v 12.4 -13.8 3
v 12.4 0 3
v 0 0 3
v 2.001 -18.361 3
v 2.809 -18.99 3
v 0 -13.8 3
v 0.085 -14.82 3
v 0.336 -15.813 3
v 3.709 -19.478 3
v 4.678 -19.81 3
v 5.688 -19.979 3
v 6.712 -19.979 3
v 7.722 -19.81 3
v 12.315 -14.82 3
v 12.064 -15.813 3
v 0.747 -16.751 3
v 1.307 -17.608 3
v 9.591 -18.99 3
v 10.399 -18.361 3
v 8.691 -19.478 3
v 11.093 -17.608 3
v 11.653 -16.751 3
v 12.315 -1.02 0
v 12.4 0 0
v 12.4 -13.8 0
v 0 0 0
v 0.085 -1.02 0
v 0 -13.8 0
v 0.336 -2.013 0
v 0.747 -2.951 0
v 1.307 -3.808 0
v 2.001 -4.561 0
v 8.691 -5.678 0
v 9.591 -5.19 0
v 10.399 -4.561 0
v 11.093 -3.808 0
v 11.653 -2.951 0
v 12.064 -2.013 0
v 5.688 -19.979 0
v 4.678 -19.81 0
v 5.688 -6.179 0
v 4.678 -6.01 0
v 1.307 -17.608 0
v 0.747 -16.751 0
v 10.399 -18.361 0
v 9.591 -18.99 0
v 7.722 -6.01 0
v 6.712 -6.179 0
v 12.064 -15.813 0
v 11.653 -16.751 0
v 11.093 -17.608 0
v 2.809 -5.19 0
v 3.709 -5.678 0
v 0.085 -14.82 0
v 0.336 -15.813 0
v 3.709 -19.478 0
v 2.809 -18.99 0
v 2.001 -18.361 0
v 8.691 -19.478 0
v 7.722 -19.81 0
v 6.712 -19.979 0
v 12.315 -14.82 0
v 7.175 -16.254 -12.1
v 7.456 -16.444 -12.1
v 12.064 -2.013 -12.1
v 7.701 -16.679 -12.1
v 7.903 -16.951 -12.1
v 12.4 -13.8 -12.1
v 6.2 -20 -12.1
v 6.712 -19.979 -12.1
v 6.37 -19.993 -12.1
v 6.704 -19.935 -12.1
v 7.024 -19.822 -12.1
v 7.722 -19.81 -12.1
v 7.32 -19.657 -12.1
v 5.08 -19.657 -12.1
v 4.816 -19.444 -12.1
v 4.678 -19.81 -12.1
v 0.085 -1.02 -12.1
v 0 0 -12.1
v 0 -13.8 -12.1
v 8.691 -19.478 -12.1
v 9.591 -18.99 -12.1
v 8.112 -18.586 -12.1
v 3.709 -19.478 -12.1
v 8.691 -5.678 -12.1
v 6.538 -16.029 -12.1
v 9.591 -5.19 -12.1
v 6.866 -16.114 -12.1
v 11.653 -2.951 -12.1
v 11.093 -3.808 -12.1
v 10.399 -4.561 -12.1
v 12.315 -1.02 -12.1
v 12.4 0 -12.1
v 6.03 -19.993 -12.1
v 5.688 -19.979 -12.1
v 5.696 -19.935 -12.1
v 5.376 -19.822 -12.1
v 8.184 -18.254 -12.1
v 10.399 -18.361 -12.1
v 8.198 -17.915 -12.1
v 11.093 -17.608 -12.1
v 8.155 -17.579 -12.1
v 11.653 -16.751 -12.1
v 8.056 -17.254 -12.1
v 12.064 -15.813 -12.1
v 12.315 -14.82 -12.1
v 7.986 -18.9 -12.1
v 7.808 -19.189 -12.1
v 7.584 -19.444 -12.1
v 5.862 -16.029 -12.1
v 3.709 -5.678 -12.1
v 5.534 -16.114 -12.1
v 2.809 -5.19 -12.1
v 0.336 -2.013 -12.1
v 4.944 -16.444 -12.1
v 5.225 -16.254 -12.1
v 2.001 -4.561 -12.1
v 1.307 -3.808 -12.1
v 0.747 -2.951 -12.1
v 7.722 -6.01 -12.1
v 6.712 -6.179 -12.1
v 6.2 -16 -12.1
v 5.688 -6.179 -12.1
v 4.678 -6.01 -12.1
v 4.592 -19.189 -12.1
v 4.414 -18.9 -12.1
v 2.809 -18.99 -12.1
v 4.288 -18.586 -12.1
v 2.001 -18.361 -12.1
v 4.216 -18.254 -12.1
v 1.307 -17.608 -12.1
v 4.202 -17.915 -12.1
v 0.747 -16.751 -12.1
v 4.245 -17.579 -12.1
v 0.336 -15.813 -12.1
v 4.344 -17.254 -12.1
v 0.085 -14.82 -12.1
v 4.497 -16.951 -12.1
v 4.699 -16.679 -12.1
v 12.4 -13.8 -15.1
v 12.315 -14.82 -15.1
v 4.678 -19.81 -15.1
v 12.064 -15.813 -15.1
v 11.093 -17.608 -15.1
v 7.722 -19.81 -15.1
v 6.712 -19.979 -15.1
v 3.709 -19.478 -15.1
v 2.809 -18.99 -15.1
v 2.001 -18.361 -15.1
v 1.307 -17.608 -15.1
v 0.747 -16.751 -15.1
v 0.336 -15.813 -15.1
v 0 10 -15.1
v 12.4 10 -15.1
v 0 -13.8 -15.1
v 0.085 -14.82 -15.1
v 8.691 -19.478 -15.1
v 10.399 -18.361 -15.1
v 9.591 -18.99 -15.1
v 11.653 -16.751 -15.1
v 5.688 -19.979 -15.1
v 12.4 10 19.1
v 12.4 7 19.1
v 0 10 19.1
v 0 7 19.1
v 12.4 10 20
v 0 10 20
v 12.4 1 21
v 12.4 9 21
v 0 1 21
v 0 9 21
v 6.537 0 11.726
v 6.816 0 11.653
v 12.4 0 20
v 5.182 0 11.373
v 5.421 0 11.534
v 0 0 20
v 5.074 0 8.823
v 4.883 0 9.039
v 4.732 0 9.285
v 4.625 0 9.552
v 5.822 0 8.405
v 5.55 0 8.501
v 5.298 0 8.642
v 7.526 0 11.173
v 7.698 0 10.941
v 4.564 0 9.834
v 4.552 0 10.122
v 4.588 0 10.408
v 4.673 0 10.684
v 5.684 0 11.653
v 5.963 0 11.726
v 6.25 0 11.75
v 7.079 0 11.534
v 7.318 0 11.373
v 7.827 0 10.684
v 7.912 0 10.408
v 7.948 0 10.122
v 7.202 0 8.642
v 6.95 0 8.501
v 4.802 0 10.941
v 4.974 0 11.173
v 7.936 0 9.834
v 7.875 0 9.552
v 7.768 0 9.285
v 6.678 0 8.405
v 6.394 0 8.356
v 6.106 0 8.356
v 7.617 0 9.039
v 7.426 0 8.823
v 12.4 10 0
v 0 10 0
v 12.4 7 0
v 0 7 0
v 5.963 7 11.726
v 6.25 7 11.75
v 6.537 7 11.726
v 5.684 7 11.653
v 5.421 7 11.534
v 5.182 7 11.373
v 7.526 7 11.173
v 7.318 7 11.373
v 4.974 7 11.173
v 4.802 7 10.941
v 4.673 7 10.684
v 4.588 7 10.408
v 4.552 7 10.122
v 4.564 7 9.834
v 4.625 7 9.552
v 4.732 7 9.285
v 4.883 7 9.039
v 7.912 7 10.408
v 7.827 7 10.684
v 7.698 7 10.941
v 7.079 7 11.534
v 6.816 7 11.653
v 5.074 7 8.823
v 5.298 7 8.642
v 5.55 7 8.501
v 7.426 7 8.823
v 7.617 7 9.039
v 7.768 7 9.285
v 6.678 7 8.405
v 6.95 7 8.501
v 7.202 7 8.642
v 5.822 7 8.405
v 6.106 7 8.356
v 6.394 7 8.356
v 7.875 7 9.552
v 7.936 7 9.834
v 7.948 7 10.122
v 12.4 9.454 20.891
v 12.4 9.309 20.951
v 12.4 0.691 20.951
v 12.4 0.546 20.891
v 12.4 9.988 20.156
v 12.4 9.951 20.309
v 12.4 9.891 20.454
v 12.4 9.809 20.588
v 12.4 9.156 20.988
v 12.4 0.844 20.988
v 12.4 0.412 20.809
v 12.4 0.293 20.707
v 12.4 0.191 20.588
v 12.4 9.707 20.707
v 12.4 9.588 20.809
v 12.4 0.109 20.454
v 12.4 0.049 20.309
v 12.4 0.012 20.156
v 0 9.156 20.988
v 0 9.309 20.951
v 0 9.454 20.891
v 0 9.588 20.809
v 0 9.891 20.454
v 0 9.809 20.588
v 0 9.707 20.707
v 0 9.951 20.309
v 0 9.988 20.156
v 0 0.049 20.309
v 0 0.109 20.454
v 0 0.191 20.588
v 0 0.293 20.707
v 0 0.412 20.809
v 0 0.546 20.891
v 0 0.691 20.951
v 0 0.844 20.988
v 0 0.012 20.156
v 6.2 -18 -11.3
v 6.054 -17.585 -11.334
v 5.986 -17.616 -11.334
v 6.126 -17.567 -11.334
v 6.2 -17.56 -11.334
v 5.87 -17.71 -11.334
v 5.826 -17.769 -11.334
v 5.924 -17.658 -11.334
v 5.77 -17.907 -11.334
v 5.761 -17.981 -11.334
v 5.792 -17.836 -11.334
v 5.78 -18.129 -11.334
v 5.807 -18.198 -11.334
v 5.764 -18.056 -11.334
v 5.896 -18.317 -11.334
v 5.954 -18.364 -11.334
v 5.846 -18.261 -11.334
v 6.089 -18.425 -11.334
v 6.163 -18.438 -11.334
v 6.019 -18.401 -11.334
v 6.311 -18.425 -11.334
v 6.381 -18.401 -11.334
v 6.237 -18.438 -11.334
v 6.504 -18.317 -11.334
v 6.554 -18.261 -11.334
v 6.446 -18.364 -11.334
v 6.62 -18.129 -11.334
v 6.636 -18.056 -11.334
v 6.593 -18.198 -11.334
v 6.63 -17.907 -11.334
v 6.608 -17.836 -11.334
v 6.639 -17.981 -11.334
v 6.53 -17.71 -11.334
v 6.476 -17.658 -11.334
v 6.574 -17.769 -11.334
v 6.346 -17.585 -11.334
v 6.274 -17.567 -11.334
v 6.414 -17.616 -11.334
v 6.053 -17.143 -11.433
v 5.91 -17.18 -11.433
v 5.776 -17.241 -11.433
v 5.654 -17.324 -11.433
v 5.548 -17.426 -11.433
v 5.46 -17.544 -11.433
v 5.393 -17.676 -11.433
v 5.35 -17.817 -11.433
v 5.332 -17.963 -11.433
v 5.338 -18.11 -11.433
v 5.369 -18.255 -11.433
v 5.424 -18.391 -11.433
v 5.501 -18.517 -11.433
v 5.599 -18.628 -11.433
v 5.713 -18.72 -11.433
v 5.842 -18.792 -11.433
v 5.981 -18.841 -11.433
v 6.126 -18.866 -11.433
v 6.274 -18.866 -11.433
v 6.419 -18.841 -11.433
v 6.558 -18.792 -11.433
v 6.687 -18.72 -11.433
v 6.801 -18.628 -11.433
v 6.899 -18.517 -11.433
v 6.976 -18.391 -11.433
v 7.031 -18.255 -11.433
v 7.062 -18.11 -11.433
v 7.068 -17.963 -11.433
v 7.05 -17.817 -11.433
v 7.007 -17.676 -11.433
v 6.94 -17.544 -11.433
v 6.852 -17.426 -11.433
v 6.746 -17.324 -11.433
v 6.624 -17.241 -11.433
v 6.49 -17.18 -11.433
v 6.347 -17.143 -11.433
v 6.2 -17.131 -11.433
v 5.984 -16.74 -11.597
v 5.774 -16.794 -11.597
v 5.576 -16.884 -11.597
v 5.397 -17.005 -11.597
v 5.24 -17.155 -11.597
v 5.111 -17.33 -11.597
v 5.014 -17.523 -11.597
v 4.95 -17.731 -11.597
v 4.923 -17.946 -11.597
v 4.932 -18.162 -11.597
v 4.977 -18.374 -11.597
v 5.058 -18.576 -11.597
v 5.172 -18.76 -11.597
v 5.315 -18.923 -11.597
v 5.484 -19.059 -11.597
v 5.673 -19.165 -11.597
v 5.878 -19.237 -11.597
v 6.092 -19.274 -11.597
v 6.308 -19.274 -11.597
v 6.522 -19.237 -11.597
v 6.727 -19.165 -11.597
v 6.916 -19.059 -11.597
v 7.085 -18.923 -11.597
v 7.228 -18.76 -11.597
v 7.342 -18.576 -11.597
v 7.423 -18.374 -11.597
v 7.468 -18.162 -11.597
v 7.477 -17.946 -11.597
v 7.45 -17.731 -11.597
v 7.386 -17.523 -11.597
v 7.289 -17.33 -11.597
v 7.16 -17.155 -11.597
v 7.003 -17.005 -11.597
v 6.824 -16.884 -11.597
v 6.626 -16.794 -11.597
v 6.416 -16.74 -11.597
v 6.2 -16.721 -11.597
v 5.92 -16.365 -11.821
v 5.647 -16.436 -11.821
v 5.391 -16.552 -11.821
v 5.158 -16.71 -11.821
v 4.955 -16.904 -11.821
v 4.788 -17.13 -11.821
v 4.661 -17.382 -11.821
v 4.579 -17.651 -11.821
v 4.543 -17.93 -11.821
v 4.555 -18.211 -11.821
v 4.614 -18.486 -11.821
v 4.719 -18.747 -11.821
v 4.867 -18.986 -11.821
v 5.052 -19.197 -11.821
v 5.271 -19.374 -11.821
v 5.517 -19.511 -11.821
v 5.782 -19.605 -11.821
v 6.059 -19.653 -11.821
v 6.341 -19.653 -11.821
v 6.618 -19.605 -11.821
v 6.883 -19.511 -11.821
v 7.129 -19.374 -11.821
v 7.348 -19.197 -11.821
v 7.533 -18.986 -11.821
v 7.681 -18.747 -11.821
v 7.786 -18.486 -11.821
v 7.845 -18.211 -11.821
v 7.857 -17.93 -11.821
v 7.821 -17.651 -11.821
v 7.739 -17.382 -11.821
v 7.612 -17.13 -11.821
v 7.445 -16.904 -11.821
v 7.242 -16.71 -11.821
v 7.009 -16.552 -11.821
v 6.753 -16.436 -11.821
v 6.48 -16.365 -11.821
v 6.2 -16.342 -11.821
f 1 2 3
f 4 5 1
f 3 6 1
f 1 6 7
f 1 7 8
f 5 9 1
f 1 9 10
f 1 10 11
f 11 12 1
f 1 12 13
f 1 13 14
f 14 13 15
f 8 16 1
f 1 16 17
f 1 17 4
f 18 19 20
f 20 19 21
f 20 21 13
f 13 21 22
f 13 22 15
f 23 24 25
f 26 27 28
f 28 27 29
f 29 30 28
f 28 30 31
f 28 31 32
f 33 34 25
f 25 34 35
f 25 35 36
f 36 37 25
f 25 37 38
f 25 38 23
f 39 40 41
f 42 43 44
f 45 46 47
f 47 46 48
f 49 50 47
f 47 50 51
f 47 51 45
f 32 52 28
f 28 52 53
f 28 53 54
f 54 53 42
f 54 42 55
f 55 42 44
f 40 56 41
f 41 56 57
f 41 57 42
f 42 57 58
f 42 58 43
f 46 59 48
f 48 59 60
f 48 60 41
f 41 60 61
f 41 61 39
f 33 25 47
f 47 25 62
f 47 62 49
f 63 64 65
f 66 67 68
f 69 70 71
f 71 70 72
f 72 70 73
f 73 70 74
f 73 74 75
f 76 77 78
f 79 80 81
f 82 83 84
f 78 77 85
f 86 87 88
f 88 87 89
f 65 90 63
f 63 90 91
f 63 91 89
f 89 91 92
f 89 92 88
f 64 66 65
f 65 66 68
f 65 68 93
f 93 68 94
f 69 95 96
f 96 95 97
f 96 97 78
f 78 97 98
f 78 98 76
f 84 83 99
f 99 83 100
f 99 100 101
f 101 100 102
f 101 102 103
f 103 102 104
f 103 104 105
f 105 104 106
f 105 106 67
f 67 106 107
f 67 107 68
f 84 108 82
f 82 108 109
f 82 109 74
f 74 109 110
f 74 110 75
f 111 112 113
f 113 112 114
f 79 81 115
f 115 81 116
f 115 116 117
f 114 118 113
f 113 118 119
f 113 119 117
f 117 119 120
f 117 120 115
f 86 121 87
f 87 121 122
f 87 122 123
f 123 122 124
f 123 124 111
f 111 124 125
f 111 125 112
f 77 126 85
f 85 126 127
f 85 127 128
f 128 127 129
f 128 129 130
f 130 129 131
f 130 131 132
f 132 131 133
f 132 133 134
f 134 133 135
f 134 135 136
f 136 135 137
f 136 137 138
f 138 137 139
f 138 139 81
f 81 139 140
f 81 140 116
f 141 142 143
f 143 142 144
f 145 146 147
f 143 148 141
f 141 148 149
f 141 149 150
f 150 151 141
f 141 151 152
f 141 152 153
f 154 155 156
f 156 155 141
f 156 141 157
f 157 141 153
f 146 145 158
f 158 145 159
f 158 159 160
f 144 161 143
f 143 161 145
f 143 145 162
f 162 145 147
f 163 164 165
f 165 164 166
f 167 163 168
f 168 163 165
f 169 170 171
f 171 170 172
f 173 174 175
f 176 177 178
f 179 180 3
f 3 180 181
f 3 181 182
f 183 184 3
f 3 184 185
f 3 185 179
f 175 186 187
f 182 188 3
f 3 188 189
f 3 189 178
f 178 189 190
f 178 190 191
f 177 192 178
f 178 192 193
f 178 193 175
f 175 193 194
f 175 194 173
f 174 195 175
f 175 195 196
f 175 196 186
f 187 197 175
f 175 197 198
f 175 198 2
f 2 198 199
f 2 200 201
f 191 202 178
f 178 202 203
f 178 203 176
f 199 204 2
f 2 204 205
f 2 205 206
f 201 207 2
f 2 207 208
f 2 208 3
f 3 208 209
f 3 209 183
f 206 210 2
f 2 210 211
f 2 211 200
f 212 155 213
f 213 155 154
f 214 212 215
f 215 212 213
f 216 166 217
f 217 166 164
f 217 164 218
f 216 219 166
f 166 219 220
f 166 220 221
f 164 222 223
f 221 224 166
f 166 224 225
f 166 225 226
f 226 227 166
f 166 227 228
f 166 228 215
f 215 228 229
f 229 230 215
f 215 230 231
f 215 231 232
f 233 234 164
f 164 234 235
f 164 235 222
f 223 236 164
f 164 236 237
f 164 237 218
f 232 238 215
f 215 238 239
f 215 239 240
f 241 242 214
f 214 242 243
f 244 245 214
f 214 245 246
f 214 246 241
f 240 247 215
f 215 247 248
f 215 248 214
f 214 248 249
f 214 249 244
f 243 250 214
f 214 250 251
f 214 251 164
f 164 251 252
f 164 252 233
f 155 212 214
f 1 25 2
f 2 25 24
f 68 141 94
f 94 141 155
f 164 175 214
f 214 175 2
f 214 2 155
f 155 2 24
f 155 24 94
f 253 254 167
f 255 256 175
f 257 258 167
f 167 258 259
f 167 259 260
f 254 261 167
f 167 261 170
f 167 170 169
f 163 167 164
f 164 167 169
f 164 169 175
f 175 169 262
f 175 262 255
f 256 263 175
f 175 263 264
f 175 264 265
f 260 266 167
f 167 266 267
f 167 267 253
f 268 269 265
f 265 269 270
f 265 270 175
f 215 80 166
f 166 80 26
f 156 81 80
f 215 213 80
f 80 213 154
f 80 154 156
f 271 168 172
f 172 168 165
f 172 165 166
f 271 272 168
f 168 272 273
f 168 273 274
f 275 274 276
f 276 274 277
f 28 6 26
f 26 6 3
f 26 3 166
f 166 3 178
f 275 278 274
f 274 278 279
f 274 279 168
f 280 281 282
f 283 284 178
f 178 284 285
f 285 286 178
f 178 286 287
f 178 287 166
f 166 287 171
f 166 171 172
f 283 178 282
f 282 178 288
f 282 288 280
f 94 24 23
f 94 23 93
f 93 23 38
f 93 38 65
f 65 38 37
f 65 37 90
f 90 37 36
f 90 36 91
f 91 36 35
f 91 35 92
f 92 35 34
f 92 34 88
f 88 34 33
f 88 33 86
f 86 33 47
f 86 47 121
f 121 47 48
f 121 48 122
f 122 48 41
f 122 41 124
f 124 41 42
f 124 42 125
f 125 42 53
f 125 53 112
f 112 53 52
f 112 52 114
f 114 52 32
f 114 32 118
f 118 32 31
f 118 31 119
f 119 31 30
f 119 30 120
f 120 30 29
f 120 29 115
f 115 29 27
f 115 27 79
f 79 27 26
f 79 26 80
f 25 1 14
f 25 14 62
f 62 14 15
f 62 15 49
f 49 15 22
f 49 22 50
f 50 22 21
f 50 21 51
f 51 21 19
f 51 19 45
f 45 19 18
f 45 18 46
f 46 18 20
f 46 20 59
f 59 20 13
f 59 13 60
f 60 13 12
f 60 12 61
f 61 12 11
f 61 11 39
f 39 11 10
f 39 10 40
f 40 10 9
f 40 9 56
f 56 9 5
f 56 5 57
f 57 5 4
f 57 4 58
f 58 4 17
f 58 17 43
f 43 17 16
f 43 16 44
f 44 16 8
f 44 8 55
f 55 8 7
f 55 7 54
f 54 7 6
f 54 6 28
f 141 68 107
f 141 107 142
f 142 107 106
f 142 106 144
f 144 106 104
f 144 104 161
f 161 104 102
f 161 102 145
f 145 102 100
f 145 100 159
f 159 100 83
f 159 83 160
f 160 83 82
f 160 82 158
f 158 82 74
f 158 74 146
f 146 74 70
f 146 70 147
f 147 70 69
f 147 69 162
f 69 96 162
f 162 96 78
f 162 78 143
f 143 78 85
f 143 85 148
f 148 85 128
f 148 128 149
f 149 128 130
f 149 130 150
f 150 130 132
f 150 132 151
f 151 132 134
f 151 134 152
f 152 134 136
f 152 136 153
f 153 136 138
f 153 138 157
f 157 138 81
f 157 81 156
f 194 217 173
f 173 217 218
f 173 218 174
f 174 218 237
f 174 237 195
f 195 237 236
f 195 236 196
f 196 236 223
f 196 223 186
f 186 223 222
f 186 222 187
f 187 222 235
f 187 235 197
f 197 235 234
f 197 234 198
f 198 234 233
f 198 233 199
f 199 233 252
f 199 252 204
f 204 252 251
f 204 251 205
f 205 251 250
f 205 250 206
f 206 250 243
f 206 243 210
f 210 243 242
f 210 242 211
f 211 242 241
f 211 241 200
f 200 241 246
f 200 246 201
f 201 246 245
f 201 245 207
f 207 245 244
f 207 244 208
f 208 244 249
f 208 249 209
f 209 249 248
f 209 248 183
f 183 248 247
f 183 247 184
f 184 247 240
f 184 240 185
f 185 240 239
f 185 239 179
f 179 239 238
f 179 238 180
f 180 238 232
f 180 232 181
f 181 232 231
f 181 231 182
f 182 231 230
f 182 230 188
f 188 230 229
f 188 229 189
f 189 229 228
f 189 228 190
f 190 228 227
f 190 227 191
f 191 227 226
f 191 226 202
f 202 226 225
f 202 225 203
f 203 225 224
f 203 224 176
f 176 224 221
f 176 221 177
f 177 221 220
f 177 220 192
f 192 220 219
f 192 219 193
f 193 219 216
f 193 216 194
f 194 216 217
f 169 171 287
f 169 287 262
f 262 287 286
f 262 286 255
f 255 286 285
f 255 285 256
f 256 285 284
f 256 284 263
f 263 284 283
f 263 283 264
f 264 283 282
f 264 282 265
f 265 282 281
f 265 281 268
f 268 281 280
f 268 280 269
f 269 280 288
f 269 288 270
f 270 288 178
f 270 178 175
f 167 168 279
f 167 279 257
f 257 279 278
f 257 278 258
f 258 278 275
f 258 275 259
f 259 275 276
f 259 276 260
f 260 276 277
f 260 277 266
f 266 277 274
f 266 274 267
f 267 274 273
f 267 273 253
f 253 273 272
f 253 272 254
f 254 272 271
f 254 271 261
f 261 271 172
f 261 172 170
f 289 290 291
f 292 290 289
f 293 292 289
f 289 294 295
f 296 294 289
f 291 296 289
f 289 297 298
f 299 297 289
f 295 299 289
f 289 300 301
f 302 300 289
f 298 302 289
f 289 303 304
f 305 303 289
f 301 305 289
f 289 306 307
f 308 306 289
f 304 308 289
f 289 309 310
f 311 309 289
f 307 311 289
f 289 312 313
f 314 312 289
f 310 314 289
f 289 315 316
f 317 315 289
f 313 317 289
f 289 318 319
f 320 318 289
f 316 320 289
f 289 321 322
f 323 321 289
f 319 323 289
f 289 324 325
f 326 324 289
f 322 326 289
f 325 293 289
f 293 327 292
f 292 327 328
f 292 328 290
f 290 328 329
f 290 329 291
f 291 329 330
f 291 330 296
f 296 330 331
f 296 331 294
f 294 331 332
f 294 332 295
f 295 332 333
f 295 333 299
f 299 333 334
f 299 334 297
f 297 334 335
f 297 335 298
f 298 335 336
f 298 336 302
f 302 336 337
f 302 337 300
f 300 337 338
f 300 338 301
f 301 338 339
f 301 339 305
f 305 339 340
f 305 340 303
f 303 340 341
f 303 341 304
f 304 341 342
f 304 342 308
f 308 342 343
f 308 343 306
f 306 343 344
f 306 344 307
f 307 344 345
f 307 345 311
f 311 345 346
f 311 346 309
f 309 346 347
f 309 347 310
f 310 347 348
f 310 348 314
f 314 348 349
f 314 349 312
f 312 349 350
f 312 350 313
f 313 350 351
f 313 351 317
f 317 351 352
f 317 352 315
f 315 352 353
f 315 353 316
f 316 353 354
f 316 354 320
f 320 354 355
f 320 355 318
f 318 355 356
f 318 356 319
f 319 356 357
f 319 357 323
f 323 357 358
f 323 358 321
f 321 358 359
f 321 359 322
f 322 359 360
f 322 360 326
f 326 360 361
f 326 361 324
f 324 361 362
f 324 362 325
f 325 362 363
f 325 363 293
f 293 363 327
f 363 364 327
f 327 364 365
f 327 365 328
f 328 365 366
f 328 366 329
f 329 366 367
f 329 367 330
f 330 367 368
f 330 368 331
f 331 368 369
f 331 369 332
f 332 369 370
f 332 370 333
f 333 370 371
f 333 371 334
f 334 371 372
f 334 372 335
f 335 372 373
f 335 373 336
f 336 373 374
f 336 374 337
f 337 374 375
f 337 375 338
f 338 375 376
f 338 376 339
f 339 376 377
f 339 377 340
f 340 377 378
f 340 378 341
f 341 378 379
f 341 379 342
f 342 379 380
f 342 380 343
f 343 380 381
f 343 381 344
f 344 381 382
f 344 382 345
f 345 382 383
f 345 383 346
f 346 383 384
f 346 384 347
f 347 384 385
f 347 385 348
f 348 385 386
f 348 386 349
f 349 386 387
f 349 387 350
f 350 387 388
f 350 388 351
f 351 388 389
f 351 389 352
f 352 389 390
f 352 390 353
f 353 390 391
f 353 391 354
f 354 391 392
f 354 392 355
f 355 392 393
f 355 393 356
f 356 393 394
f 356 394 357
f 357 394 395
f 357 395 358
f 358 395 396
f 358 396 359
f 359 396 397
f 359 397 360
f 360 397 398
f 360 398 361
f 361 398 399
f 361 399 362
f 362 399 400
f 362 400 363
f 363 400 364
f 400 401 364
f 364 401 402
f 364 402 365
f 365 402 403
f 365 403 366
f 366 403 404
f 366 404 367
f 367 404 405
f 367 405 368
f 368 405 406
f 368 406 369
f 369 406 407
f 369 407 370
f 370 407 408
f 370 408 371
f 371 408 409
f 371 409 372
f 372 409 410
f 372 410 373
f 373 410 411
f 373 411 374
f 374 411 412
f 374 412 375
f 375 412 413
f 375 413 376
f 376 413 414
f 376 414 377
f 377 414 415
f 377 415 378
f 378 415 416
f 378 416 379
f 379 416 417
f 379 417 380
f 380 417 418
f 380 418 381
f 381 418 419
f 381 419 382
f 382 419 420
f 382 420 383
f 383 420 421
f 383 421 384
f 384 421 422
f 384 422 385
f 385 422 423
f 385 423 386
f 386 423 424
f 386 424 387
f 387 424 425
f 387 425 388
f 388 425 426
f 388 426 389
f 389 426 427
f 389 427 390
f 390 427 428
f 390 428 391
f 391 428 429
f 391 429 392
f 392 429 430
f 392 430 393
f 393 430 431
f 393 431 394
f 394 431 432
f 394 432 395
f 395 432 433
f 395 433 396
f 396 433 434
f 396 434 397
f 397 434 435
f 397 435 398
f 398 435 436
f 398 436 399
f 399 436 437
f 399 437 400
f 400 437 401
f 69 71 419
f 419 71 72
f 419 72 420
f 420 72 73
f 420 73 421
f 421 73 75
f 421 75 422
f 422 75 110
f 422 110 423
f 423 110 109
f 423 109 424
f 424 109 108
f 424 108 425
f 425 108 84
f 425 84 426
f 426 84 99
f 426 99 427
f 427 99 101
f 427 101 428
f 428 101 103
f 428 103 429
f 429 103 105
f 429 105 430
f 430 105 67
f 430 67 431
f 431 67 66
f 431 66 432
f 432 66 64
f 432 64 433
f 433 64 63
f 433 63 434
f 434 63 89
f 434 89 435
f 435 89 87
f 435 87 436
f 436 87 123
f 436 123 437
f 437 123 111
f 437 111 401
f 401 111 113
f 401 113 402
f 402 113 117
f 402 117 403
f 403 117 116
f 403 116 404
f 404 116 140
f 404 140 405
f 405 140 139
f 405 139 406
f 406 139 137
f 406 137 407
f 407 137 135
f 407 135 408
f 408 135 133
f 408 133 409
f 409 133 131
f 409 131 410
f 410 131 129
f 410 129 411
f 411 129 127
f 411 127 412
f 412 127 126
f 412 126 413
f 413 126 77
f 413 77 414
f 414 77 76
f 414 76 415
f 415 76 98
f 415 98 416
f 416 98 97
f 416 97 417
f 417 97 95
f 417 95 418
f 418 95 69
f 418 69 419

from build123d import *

# Parameters (mm, degrees)
SKETCH_2_W               = 12.1
SKETCH_2_H               = 8
EXTRUDE_1_DEPTH          = 12.4
CUT_EXTRUDE_1_DEPTH      = 12.1
CUT_EXTRUDE_2_DEPTH      = 22
CUT_EXTRUDE_2_DEPTH_BACK = 16.1
HOLE_WIZARD_M31_D        = 3.4
HOLE_WIZARD_M31_DEPTH    = 10
HOLE_WIZARD_M31_TIP      = 1.021463052
FILLET_1_R               = 1


with BuildPart() as part:
    # Эскиз2 → Бобышка-Вытянуть1 (new body)
    with BuildSketch(Plane(origin=(0, 0, 0), x_dir=(0, 0, -1), z_dir=(1, 0, 0))):
        Polygon((-19.1, 10), (-19.1, 7), (0, 7), (0, 10), (15.1, 10), (15.1, -20), (12.1, -20), (12.1, 0), (0, 0), (0, -20), (-3, -20), (-3, 0), (-21, 0), (-21, 10), align=None)
        with Locations((6.05, -4)):
            Rectangle(SKETCH_2_W, SKETCH_2_H)
    extrude(amount=EXTRUDE_1_DEPTH)

    # Эскиз3 → Вырез-Вытянуть1 (cut)
    with BuildSketch(Plane.XY):
        with BuildLine():
            Line((0, 0), (-4.310236897, 0))
            Line((-4.310236897, 0), (-4.310236897, -10.158248203))
            Line((-4.310236897, -10.158248203), (16.784307367, -10.158248203))
            Line((16.784307367, -10.158248203), (16.784307367, 0))
            Line((16.784307367, 0), (12.4, 0))
            ThreePointArc((12.4, 0), (6.2, -6.2), (0, 0))
        make_face()
    extrude(amount=-CUT_EXTRUDE_1_DEPTH, mode=Mode.SUBTRACT)

    # Эскиз4 → Вырез-Вытянуть2 (cut, two sides)
    with BuildSketch(Plane.XY) as cut_extrude_2_sk:
        with BuildLine():
            Line((0, -13.8), (-4.529189241, -13.8))
            Line((-4.529189241, -13.8), (-4.529189241, -23.032738442))
            Line((-4.529189241, -23.032738442), (17.457291493, -23.032738442))
            Line((17.457291493, -23.032738442), (17.457291493, -13.8))
            Line((17.457291493, -13.8), (12.4, -13.8))
            ThreePointArc((12.4, -13.8), (6.2, -20), (0, -13.8))
        make_face()
    extrude(amount=CUT_EXTRUDE_2_DEPTH, mode=Mode.SUBTRACT)
    extrude(cut_extrude_2_sk.sketch, amount=-CUT_EXTRUDE_2_DEPTH_BACK, mode=Mode.SUBTRACT)

    # Отверстие с зазором M31
    with Locations(Plane(origin=(0, 7, 0), x_dir=(1, 0, 0), z_dir=(0, 1, 0))):
        with Locations((6.25, -10.05)):
            Hole(HOLE_WIZARD_M31_D / 2, depth=HOLE_WIZARD_M31_DEPTH)
            with Locations((0, 0, -(HOLE_WIZARD_M31_DEPTH + HOLE_WIZARD_M31_TIP / 2))):  # 118° drill point
                Cone(0, HOLE_WIZARD_M31_D / 2, HOLE_WIZARD_M31_TIP, mode=Mode.SUBTRACT)

    # Скругление1
    fillet_1_edges = [part.edges().sort_by_distance(p)[0] for p in [
        (6.2, 0, 21),
        (6.2, 10, 21),
    ]]
    fillet(fillet_1_edges, radius=FILLET_1_R)

    # Эскиз9 → Повернуть1 (revolve)
    with BuildSketch(Plane(origin=(6.2, 0, 0), x_dir=(0, 0, -1), z_dir=(1, 0, 0))):
        with BuildLine():
            Line((12.1, -20), (12.1, -18))
            Line((12.1, -18), (11.3, -18))
            ThreePointArc((11.3, -18), (11.507417596, -19.077032961), (12.1, -20))
        make_face()
    revolve(axis=Axis((6.2, -18, -11.3), (0, 0, -1)))


solid = part.part
